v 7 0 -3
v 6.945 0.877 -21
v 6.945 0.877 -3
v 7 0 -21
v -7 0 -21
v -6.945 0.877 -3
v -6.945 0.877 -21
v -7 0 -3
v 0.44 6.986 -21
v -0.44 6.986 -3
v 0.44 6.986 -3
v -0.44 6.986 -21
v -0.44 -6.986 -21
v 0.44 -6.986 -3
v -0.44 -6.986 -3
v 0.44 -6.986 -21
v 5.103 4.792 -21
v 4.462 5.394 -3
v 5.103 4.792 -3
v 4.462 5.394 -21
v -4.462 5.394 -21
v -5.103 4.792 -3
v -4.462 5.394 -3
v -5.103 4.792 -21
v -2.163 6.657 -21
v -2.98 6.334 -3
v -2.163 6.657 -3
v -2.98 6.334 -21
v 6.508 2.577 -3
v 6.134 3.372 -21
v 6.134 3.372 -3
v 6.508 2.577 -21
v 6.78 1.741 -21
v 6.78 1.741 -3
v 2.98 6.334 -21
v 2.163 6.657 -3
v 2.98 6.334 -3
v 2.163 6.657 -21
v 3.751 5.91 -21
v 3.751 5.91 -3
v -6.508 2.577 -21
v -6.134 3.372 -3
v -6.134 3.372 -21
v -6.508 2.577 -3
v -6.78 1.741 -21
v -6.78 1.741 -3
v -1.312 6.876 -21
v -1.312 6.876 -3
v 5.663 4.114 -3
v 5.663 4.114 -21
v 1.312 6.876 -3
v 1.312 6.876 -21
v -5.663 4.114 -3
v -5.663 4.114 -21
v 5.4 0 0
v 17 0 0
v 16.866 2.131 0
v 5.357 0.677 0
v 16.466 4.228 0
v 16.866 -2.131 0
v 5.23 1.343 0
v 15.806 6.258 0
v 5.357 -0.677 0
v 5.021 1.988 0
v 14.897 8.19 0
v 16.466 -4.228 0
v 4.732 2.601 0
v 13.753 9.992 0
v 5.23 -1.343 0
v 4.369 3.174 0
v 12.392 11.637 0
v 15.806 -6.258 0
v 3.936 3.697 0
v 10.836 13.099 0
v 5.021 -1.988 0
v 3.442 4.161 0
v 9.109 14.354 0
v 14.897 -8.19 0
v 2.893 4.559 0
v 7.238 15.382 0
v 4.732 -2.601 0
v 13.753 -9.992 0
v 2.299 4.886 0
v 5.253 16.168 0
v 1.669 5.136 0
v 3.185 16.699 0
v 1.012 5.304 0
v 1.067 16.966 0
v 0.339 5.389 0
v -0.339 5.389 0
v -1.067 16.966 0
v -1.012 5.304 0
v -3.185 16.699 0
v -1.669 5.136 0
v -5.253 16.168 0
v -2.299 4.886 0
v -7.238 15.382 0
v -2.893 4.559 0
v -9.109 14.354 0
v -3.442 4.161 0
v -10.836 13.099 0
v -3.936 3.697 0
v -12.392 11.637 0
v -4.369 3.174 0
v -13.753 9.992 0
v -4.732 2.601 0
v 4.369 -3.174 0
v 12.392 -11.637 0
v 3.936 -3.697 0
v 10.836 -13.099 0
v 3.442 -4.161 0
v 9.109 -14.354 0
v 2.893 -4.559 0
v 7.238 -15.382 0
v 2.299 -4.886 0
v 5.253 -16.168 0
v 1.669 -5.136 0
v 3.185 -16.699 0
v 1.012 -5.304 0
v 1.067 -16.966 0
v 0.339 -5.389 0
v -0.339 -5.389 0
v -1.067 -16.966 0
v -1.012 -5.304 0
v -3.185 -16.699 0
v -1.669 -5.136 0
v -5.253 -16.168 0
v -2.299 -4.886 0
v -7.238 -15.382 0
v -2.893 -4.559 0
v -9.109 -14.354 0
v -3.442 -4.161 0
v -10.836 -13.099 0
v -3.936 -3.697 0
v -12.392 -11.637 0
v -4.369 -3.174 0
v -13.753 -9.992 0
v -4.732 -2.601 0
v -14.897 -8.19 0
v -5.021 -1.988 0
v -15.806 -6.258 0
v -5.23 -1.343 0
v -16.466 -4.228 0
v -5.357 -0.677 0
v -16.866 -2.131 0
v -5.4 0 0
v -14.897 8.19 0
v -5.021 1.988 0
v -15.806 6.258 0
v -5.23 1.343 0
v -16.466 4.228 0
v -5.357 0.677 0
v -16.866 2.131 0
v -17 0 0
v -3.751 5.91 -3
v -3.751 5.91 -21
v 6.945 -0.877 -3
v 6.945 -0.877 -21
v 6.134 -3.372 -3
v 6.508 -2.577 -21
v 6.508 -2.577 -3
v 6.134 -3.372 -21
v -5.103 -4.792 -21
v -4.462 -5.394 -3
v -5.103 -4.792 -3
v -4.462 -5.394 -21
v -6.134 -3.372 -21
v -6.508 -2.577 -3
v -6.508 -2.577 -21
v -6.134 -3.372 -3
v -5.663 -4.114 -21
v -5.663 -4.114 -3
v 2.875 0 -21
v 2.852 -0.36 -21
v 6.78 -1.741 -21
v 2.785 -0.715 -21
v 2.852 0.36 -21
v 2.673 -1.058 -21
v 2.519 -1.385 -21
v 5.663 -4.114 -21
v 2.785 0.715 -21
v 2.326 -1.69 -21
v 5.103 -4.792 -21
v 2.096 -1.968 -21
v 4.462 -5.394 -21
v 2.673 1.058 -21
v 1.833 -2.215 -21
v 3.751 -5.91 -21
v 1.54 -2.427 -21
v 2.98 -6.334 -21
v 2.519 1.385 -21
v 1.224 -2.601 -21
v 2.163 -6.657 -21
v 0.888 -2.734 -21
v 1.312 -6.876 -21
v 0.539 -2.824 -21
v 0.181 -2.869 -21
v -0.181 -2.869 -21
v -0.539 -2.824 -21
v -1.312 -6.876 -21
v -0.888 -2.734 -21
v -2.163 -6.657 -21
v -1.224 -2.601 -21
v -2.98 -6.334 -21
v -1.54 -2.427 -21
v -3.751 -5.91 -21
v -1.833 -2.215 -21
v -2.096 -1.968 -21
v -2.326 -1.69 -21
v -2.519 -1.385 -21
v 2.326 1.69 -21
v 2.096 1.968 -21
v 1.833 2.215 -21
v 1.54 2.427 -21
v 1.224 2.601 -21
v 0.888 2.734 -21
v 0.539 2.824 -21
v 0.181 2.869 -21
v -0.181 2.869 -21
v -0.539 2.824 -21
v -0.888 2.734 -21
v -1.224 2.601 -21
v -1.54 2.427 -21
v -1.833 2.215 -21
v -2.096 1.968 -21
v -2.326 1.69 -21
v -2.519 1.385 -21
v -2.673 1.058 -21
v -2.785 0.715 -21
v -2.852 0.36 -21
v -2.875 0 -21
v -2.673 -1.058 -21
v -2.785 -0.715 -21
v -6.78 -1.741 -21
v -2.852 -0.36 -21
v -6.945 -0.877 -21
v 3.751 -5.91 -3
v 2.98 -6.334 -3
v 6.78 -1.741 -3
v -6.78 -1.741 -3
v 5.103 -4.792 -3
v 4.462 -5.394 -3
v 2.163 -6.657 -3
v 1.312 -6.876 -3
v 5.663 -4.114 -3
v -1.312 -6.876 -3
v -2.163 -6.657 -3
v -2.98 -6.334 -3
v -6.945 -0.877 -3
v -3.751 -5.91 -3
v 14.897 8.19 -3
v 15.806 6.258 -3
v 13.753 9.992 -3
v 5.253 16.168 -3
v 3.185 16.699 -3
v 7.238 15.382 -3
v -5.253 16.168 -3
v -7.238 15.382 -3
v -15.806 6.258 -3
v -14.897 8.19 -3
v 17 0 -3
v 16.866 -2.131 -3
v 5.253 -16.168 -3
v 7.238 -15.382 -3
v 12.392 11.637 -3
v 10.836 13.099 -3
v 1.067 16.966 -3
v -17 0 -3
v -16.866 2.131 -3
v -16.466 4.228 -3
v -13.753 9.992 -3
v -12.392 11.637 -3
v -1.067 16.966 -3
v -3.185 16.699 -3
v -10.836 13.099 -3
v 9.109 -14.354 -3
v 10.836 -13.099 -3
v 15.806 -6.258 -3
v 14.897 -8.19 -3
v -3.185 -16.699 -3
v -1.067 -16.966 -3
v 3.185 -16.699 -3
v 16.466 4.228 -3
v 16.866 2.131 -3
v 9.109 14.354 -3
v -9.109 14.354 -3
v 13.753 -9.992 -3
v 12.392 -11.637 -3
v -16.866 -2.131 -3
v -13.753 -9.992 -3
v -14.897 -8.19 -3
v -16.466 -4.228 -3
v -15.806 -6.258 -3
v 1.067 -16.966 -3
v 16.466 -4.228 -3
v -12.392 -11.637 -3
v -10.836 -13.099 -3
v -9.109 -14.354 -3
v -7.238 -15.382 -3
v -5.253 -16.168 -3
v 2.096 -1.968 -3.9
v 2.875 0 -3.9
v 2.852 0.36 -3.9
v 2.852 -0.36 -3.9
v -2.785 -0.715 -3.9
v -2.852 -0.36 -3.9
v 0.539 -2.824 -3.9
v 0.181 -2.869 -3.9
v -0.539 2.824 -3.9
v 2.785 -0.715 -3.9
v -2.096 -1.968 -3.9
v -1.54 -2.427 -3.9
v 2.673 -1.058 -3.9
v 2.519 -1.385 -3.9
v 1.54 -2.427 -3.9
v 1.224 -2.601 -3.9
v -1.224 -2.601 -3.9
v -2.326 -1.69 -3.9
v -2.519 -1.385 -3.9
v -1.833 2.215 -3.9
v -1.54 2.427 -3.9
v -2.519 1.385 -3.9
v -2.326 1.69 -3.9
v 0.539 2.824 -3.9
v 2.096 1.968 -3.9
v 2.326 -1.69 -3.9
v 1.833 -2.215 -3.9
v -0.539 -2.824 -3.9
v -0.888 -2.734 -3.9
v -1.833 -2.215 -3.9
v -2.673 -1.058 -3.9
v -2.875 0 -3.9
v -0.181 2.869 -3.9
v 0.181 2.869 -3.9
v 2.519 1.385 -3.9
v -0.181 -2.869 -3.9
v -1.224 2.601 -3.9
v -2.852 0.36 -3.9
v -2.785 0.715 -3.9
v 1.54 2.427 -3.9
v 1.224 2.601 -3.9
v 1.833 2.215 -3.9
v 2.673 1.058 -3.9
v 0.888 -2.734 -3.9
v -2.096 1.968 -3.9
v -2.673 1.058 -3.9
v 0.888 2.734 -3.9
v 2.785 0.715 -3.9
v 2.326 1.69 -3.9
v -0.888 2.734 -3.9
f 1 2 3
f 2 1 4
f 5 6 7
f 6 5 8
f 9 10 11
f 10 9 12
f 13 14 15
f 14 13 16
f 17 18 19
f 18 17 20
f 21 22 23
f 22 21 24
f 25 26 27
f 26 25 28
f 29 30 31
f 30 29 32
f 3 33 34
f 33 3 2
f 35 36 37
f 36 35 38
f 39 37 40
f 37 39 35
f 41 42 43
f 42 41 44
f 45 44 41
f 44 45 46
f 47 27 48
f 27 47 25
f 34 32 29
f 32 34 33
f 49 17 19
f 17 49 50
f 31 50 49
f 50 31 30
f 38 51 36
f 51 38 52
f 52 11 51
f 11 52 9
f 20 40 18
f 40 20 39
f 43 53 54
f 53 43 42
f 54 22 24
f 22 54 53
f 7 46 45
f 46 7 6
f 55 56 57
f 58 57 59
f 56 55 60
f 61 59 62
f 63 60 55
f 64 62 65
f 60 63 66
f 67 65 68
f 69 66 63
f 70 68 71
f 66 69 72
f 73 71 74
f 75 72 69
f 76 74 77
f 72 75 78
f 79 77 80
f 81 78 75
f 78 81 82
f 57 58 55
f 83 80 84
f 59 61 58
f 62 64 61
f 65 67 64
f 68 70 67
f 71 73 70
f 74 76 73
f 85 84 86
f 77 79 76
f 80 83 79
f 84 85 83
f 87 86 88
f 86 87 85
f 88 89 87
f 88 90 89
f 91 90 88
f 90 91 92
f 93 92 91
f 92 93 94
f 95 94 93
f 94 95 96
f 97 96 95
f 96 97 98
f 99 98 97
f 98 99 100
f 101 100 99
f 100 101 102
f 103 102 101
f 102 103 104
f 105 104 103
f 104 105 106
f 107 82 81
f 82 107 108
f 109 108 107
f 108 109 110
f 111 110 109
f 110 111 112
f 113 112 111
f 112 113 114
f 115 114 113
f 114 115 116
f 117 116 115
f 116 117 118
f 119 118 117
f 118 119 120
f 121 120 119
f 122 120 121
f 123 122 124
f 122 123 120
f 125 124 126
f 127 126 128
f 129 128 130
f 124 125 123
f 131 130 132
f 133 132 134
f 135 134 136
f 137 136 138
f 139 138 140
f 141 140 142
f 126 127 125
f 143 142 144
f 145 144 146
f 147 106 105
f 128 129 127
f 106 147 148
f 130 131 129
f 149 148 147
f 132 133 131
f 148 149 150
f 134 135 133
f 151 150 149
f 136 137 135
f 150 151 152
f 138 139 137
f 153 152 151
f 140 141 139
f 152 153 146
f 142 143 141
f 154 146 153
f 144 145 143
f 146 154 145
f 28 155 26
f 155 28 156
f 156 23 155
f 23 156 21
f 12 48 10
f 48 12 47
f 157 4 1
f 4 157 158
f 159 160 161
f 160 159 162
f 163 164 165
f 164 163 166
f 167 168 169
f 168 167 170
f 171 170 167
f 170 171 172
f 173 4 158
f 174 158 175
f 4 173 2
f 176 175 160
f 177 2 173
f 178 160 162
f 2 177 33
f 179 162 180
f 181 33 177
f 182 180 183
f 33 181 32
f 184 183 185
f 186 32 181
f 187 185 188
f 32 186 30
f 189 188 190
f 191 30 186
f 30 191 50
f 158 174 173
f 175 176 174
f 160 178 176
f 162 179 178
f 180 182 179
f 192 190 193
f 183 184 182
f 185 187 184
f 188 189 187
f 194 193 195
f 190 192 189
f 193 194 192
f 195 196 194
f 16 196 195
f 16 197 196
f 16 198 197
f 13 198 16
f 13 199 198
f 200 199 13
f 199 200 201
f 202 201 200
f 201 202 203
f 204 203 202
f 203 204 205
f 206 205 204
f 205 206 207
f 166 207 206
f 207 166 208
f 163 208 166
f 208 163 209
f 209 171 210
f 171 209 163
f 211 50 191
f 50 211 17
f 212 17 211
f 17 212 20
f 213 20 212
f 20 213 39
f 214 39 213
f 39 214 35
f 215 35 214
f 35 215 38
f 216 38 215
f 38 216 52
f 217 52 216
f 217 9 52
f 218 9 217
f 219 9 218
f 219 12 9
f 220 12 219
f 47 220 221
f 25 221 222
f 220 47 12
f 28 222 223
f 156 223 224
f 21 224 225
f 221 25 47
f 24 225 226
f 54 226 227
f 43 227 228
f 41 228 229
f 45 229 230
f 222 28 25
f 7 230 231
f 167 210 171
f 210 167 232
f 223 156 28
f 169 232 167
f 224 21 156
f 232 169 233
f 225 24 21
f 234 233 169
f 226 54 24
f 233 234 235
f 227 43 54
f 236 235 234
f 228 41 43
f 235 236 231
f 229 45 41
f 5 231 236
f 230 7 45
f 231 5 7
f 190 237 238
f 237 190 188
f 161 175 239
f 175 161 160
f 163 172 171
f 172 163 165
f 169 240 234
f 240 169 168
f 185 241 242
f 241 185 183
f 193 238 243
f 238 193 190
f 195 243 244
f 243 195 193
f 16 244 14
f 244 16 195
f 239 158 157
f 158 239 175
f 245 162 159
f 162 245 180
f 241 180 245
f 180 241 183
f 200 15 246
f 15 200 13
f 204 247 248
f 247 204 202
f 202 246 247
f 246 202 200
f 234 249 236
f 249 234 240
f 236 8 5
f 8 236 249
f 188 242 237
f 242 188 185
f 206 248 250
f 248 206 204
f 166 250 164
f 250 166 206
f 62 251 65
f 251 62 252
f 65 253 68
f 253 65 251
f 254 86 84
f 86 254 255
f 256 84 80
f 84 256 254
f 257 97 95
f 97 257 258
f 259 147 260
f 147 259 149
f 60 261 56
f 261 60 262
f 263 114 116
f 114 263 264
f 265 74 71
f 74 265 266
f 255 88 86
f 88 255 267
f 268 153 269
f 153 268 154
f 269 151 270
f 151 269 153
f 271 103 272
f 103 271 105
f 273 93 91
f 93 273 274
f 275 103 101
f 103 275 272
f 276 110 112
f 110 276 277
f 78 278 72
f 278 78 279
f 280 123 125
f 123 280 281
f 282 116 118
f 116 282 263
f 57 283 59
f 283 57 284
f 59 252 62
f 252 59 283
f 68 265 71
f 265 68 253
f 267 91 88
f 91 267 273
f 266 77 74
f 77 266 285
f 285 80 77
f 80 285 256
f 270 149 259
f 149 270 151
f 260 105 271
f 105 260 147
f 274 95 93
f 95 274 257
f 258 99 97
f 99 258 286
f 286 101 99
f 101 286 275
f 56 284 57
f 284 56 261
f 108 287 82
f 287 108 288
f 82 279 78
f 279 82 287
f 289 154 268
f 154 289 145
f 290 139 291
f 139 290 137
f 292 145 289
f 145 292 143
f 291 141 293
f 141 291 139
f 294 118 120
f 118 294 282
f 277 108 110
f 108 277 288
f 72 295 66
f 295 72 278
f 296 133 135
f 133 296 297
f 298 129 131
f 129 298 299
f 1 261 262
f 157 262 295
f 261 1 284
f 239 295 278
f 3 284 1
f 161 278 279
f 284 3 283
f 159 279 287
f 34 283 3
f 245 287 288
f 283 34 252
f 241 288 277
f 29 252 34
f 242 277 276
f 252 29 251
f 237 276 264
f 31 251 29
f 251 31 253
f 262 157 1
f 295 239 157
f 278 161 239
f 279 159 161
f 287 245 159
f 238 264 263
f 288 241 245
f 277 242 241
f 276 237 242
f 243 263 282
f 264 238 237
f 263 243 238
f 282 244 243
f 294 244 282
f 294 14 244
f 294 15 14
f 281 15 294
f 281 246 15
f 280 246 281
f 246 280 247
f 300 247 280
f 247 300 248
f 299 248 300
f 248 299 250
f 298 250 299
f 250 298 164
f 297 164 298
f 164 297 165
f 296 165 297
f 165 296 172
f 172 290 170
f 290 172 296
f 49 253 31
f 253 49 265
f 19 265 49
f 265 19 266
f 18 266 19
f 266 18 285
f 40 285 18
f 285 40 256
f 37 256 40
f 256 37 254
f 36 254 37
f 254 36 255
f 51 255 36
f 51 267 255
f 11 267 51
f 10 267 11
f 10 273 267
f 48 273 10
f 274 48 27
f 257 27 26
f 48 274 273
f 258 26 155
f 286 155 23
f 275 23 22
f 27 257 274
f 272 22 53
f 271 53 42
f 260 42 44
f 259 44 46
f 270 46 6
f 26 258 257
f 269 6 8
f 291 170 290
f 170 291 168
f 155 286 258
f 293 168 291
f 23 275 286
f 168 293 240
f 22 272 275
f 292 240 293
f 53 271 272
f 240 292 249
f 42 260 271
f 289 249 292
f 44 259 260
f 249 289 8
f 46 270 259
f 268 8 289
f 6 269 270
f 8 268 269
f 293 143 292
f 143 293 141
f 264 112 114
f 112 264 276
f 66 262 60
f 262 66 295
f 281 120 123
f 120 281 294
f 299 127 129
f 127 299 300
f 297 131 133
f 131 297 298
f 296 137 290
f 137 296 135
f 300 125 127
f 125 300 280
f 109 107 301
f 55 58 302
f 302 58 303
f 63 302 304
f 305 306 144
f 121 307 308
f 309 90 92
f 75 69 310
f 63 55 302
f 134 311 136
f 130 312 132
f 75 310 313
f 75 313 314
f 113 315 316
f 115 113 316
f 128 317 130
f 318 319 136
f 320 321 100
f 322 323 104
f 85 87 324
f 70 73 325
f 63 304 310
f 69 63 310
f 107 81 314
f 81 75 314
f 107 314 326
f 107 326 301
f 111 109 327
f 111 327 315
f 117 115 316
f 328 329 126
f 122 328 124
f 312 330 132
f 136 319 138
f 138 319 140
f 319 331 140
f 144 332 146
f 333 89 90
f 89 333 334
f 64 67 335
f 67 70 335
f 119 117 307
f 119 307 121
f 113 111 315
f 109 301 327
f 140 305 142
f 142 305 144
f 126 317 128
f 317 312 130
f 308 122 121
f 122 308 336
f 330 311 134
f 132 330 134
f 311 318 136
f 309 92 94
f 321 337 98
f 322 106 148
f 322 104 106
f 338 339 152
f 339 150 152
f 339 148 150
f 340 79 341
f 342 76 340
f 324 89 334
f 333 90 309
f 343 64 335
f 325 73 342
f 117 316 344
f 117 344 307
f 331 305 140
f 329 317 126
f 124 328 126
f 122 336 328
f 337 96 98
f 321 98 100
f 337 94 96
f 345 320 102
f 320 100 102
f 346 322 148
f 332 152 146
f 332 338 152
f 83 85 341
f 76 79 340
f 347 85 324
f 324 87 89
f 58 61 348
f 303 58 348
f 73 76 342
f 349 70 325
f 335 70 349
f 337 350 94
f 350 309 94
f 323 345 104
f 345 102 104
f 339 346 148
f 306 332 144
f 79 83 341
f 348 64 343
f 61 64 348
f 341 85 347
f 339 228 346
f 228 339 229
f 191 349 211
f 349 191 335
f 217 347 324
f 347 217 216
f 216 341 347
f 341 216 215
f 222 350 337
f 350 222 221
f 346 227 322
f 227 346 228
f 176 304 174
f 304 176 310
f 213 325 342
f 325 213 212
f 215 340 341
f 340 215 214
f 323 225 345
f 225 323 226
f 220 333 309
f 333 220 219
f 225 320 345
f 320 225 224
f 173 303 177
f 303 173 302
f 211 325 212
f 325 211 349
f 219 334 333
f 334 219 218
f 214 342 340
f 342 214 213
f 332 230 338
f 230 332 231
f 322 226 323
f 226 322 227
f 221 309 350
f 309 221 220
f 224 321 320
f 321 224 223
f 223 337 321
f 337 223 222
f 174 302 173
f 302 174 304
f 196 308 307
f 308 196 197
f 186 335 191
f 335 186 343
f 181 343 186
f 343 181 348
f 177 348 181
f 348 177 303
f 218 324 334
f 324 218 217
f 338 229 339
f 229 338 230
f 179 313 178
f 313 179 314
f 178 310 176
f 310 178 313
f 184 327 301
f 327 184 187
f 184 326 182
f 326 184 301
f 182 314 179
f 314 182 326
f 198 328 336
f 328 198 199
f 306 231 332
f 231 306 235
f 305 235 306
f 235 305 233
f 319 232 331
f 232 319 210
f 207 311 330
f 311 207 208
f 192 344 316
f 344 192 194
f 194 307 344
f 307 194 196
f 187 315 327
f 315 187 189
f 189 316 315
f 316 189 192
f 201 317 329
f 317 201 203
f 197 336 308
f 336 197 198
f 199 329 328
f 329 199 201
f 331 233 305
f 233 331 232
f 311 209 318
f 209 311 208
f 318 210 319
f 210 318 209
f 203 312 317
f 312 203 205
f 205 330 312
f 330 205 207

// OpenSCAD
$fn = 50;


difference() {
	union() {
		translate(v = [0, 0, -21.0000000000]) {
			cylinder(h = 21, r = 7.0000000000);
		}
		translate(v = [0, 0, -3.0000000000]) {
			cylinder(h = 3, r = 17.0000000000);
		}
	}
	union() {
		translate(v = [0, 0, 0]) {
			rotate(a = [0, 0, 0]) {
				difference() {
					union() {
						#translate(v = [0, 0, -21.0000000000]) {
							cylinder(h = 21, r = 2.6000000000);
						}
						#translate(v = [0, 0, -3.9000000000]) {
							cylinder(h = 3.9000000000, r = 7.0000000000, r1 = 2.8750000000, r2 = 5.4000000000);
						}
						#translate(v = [0, 0, -21.0000000000]) {
							cylinder(h = 21, r = 2.8750000000);
						}
						#translate(v = [0, 0, -21.0000000000]) {
							cylinder(h = 21, r = 2.6000000000);
						}
					}
					union();
				}
			}
		}
	}
}
